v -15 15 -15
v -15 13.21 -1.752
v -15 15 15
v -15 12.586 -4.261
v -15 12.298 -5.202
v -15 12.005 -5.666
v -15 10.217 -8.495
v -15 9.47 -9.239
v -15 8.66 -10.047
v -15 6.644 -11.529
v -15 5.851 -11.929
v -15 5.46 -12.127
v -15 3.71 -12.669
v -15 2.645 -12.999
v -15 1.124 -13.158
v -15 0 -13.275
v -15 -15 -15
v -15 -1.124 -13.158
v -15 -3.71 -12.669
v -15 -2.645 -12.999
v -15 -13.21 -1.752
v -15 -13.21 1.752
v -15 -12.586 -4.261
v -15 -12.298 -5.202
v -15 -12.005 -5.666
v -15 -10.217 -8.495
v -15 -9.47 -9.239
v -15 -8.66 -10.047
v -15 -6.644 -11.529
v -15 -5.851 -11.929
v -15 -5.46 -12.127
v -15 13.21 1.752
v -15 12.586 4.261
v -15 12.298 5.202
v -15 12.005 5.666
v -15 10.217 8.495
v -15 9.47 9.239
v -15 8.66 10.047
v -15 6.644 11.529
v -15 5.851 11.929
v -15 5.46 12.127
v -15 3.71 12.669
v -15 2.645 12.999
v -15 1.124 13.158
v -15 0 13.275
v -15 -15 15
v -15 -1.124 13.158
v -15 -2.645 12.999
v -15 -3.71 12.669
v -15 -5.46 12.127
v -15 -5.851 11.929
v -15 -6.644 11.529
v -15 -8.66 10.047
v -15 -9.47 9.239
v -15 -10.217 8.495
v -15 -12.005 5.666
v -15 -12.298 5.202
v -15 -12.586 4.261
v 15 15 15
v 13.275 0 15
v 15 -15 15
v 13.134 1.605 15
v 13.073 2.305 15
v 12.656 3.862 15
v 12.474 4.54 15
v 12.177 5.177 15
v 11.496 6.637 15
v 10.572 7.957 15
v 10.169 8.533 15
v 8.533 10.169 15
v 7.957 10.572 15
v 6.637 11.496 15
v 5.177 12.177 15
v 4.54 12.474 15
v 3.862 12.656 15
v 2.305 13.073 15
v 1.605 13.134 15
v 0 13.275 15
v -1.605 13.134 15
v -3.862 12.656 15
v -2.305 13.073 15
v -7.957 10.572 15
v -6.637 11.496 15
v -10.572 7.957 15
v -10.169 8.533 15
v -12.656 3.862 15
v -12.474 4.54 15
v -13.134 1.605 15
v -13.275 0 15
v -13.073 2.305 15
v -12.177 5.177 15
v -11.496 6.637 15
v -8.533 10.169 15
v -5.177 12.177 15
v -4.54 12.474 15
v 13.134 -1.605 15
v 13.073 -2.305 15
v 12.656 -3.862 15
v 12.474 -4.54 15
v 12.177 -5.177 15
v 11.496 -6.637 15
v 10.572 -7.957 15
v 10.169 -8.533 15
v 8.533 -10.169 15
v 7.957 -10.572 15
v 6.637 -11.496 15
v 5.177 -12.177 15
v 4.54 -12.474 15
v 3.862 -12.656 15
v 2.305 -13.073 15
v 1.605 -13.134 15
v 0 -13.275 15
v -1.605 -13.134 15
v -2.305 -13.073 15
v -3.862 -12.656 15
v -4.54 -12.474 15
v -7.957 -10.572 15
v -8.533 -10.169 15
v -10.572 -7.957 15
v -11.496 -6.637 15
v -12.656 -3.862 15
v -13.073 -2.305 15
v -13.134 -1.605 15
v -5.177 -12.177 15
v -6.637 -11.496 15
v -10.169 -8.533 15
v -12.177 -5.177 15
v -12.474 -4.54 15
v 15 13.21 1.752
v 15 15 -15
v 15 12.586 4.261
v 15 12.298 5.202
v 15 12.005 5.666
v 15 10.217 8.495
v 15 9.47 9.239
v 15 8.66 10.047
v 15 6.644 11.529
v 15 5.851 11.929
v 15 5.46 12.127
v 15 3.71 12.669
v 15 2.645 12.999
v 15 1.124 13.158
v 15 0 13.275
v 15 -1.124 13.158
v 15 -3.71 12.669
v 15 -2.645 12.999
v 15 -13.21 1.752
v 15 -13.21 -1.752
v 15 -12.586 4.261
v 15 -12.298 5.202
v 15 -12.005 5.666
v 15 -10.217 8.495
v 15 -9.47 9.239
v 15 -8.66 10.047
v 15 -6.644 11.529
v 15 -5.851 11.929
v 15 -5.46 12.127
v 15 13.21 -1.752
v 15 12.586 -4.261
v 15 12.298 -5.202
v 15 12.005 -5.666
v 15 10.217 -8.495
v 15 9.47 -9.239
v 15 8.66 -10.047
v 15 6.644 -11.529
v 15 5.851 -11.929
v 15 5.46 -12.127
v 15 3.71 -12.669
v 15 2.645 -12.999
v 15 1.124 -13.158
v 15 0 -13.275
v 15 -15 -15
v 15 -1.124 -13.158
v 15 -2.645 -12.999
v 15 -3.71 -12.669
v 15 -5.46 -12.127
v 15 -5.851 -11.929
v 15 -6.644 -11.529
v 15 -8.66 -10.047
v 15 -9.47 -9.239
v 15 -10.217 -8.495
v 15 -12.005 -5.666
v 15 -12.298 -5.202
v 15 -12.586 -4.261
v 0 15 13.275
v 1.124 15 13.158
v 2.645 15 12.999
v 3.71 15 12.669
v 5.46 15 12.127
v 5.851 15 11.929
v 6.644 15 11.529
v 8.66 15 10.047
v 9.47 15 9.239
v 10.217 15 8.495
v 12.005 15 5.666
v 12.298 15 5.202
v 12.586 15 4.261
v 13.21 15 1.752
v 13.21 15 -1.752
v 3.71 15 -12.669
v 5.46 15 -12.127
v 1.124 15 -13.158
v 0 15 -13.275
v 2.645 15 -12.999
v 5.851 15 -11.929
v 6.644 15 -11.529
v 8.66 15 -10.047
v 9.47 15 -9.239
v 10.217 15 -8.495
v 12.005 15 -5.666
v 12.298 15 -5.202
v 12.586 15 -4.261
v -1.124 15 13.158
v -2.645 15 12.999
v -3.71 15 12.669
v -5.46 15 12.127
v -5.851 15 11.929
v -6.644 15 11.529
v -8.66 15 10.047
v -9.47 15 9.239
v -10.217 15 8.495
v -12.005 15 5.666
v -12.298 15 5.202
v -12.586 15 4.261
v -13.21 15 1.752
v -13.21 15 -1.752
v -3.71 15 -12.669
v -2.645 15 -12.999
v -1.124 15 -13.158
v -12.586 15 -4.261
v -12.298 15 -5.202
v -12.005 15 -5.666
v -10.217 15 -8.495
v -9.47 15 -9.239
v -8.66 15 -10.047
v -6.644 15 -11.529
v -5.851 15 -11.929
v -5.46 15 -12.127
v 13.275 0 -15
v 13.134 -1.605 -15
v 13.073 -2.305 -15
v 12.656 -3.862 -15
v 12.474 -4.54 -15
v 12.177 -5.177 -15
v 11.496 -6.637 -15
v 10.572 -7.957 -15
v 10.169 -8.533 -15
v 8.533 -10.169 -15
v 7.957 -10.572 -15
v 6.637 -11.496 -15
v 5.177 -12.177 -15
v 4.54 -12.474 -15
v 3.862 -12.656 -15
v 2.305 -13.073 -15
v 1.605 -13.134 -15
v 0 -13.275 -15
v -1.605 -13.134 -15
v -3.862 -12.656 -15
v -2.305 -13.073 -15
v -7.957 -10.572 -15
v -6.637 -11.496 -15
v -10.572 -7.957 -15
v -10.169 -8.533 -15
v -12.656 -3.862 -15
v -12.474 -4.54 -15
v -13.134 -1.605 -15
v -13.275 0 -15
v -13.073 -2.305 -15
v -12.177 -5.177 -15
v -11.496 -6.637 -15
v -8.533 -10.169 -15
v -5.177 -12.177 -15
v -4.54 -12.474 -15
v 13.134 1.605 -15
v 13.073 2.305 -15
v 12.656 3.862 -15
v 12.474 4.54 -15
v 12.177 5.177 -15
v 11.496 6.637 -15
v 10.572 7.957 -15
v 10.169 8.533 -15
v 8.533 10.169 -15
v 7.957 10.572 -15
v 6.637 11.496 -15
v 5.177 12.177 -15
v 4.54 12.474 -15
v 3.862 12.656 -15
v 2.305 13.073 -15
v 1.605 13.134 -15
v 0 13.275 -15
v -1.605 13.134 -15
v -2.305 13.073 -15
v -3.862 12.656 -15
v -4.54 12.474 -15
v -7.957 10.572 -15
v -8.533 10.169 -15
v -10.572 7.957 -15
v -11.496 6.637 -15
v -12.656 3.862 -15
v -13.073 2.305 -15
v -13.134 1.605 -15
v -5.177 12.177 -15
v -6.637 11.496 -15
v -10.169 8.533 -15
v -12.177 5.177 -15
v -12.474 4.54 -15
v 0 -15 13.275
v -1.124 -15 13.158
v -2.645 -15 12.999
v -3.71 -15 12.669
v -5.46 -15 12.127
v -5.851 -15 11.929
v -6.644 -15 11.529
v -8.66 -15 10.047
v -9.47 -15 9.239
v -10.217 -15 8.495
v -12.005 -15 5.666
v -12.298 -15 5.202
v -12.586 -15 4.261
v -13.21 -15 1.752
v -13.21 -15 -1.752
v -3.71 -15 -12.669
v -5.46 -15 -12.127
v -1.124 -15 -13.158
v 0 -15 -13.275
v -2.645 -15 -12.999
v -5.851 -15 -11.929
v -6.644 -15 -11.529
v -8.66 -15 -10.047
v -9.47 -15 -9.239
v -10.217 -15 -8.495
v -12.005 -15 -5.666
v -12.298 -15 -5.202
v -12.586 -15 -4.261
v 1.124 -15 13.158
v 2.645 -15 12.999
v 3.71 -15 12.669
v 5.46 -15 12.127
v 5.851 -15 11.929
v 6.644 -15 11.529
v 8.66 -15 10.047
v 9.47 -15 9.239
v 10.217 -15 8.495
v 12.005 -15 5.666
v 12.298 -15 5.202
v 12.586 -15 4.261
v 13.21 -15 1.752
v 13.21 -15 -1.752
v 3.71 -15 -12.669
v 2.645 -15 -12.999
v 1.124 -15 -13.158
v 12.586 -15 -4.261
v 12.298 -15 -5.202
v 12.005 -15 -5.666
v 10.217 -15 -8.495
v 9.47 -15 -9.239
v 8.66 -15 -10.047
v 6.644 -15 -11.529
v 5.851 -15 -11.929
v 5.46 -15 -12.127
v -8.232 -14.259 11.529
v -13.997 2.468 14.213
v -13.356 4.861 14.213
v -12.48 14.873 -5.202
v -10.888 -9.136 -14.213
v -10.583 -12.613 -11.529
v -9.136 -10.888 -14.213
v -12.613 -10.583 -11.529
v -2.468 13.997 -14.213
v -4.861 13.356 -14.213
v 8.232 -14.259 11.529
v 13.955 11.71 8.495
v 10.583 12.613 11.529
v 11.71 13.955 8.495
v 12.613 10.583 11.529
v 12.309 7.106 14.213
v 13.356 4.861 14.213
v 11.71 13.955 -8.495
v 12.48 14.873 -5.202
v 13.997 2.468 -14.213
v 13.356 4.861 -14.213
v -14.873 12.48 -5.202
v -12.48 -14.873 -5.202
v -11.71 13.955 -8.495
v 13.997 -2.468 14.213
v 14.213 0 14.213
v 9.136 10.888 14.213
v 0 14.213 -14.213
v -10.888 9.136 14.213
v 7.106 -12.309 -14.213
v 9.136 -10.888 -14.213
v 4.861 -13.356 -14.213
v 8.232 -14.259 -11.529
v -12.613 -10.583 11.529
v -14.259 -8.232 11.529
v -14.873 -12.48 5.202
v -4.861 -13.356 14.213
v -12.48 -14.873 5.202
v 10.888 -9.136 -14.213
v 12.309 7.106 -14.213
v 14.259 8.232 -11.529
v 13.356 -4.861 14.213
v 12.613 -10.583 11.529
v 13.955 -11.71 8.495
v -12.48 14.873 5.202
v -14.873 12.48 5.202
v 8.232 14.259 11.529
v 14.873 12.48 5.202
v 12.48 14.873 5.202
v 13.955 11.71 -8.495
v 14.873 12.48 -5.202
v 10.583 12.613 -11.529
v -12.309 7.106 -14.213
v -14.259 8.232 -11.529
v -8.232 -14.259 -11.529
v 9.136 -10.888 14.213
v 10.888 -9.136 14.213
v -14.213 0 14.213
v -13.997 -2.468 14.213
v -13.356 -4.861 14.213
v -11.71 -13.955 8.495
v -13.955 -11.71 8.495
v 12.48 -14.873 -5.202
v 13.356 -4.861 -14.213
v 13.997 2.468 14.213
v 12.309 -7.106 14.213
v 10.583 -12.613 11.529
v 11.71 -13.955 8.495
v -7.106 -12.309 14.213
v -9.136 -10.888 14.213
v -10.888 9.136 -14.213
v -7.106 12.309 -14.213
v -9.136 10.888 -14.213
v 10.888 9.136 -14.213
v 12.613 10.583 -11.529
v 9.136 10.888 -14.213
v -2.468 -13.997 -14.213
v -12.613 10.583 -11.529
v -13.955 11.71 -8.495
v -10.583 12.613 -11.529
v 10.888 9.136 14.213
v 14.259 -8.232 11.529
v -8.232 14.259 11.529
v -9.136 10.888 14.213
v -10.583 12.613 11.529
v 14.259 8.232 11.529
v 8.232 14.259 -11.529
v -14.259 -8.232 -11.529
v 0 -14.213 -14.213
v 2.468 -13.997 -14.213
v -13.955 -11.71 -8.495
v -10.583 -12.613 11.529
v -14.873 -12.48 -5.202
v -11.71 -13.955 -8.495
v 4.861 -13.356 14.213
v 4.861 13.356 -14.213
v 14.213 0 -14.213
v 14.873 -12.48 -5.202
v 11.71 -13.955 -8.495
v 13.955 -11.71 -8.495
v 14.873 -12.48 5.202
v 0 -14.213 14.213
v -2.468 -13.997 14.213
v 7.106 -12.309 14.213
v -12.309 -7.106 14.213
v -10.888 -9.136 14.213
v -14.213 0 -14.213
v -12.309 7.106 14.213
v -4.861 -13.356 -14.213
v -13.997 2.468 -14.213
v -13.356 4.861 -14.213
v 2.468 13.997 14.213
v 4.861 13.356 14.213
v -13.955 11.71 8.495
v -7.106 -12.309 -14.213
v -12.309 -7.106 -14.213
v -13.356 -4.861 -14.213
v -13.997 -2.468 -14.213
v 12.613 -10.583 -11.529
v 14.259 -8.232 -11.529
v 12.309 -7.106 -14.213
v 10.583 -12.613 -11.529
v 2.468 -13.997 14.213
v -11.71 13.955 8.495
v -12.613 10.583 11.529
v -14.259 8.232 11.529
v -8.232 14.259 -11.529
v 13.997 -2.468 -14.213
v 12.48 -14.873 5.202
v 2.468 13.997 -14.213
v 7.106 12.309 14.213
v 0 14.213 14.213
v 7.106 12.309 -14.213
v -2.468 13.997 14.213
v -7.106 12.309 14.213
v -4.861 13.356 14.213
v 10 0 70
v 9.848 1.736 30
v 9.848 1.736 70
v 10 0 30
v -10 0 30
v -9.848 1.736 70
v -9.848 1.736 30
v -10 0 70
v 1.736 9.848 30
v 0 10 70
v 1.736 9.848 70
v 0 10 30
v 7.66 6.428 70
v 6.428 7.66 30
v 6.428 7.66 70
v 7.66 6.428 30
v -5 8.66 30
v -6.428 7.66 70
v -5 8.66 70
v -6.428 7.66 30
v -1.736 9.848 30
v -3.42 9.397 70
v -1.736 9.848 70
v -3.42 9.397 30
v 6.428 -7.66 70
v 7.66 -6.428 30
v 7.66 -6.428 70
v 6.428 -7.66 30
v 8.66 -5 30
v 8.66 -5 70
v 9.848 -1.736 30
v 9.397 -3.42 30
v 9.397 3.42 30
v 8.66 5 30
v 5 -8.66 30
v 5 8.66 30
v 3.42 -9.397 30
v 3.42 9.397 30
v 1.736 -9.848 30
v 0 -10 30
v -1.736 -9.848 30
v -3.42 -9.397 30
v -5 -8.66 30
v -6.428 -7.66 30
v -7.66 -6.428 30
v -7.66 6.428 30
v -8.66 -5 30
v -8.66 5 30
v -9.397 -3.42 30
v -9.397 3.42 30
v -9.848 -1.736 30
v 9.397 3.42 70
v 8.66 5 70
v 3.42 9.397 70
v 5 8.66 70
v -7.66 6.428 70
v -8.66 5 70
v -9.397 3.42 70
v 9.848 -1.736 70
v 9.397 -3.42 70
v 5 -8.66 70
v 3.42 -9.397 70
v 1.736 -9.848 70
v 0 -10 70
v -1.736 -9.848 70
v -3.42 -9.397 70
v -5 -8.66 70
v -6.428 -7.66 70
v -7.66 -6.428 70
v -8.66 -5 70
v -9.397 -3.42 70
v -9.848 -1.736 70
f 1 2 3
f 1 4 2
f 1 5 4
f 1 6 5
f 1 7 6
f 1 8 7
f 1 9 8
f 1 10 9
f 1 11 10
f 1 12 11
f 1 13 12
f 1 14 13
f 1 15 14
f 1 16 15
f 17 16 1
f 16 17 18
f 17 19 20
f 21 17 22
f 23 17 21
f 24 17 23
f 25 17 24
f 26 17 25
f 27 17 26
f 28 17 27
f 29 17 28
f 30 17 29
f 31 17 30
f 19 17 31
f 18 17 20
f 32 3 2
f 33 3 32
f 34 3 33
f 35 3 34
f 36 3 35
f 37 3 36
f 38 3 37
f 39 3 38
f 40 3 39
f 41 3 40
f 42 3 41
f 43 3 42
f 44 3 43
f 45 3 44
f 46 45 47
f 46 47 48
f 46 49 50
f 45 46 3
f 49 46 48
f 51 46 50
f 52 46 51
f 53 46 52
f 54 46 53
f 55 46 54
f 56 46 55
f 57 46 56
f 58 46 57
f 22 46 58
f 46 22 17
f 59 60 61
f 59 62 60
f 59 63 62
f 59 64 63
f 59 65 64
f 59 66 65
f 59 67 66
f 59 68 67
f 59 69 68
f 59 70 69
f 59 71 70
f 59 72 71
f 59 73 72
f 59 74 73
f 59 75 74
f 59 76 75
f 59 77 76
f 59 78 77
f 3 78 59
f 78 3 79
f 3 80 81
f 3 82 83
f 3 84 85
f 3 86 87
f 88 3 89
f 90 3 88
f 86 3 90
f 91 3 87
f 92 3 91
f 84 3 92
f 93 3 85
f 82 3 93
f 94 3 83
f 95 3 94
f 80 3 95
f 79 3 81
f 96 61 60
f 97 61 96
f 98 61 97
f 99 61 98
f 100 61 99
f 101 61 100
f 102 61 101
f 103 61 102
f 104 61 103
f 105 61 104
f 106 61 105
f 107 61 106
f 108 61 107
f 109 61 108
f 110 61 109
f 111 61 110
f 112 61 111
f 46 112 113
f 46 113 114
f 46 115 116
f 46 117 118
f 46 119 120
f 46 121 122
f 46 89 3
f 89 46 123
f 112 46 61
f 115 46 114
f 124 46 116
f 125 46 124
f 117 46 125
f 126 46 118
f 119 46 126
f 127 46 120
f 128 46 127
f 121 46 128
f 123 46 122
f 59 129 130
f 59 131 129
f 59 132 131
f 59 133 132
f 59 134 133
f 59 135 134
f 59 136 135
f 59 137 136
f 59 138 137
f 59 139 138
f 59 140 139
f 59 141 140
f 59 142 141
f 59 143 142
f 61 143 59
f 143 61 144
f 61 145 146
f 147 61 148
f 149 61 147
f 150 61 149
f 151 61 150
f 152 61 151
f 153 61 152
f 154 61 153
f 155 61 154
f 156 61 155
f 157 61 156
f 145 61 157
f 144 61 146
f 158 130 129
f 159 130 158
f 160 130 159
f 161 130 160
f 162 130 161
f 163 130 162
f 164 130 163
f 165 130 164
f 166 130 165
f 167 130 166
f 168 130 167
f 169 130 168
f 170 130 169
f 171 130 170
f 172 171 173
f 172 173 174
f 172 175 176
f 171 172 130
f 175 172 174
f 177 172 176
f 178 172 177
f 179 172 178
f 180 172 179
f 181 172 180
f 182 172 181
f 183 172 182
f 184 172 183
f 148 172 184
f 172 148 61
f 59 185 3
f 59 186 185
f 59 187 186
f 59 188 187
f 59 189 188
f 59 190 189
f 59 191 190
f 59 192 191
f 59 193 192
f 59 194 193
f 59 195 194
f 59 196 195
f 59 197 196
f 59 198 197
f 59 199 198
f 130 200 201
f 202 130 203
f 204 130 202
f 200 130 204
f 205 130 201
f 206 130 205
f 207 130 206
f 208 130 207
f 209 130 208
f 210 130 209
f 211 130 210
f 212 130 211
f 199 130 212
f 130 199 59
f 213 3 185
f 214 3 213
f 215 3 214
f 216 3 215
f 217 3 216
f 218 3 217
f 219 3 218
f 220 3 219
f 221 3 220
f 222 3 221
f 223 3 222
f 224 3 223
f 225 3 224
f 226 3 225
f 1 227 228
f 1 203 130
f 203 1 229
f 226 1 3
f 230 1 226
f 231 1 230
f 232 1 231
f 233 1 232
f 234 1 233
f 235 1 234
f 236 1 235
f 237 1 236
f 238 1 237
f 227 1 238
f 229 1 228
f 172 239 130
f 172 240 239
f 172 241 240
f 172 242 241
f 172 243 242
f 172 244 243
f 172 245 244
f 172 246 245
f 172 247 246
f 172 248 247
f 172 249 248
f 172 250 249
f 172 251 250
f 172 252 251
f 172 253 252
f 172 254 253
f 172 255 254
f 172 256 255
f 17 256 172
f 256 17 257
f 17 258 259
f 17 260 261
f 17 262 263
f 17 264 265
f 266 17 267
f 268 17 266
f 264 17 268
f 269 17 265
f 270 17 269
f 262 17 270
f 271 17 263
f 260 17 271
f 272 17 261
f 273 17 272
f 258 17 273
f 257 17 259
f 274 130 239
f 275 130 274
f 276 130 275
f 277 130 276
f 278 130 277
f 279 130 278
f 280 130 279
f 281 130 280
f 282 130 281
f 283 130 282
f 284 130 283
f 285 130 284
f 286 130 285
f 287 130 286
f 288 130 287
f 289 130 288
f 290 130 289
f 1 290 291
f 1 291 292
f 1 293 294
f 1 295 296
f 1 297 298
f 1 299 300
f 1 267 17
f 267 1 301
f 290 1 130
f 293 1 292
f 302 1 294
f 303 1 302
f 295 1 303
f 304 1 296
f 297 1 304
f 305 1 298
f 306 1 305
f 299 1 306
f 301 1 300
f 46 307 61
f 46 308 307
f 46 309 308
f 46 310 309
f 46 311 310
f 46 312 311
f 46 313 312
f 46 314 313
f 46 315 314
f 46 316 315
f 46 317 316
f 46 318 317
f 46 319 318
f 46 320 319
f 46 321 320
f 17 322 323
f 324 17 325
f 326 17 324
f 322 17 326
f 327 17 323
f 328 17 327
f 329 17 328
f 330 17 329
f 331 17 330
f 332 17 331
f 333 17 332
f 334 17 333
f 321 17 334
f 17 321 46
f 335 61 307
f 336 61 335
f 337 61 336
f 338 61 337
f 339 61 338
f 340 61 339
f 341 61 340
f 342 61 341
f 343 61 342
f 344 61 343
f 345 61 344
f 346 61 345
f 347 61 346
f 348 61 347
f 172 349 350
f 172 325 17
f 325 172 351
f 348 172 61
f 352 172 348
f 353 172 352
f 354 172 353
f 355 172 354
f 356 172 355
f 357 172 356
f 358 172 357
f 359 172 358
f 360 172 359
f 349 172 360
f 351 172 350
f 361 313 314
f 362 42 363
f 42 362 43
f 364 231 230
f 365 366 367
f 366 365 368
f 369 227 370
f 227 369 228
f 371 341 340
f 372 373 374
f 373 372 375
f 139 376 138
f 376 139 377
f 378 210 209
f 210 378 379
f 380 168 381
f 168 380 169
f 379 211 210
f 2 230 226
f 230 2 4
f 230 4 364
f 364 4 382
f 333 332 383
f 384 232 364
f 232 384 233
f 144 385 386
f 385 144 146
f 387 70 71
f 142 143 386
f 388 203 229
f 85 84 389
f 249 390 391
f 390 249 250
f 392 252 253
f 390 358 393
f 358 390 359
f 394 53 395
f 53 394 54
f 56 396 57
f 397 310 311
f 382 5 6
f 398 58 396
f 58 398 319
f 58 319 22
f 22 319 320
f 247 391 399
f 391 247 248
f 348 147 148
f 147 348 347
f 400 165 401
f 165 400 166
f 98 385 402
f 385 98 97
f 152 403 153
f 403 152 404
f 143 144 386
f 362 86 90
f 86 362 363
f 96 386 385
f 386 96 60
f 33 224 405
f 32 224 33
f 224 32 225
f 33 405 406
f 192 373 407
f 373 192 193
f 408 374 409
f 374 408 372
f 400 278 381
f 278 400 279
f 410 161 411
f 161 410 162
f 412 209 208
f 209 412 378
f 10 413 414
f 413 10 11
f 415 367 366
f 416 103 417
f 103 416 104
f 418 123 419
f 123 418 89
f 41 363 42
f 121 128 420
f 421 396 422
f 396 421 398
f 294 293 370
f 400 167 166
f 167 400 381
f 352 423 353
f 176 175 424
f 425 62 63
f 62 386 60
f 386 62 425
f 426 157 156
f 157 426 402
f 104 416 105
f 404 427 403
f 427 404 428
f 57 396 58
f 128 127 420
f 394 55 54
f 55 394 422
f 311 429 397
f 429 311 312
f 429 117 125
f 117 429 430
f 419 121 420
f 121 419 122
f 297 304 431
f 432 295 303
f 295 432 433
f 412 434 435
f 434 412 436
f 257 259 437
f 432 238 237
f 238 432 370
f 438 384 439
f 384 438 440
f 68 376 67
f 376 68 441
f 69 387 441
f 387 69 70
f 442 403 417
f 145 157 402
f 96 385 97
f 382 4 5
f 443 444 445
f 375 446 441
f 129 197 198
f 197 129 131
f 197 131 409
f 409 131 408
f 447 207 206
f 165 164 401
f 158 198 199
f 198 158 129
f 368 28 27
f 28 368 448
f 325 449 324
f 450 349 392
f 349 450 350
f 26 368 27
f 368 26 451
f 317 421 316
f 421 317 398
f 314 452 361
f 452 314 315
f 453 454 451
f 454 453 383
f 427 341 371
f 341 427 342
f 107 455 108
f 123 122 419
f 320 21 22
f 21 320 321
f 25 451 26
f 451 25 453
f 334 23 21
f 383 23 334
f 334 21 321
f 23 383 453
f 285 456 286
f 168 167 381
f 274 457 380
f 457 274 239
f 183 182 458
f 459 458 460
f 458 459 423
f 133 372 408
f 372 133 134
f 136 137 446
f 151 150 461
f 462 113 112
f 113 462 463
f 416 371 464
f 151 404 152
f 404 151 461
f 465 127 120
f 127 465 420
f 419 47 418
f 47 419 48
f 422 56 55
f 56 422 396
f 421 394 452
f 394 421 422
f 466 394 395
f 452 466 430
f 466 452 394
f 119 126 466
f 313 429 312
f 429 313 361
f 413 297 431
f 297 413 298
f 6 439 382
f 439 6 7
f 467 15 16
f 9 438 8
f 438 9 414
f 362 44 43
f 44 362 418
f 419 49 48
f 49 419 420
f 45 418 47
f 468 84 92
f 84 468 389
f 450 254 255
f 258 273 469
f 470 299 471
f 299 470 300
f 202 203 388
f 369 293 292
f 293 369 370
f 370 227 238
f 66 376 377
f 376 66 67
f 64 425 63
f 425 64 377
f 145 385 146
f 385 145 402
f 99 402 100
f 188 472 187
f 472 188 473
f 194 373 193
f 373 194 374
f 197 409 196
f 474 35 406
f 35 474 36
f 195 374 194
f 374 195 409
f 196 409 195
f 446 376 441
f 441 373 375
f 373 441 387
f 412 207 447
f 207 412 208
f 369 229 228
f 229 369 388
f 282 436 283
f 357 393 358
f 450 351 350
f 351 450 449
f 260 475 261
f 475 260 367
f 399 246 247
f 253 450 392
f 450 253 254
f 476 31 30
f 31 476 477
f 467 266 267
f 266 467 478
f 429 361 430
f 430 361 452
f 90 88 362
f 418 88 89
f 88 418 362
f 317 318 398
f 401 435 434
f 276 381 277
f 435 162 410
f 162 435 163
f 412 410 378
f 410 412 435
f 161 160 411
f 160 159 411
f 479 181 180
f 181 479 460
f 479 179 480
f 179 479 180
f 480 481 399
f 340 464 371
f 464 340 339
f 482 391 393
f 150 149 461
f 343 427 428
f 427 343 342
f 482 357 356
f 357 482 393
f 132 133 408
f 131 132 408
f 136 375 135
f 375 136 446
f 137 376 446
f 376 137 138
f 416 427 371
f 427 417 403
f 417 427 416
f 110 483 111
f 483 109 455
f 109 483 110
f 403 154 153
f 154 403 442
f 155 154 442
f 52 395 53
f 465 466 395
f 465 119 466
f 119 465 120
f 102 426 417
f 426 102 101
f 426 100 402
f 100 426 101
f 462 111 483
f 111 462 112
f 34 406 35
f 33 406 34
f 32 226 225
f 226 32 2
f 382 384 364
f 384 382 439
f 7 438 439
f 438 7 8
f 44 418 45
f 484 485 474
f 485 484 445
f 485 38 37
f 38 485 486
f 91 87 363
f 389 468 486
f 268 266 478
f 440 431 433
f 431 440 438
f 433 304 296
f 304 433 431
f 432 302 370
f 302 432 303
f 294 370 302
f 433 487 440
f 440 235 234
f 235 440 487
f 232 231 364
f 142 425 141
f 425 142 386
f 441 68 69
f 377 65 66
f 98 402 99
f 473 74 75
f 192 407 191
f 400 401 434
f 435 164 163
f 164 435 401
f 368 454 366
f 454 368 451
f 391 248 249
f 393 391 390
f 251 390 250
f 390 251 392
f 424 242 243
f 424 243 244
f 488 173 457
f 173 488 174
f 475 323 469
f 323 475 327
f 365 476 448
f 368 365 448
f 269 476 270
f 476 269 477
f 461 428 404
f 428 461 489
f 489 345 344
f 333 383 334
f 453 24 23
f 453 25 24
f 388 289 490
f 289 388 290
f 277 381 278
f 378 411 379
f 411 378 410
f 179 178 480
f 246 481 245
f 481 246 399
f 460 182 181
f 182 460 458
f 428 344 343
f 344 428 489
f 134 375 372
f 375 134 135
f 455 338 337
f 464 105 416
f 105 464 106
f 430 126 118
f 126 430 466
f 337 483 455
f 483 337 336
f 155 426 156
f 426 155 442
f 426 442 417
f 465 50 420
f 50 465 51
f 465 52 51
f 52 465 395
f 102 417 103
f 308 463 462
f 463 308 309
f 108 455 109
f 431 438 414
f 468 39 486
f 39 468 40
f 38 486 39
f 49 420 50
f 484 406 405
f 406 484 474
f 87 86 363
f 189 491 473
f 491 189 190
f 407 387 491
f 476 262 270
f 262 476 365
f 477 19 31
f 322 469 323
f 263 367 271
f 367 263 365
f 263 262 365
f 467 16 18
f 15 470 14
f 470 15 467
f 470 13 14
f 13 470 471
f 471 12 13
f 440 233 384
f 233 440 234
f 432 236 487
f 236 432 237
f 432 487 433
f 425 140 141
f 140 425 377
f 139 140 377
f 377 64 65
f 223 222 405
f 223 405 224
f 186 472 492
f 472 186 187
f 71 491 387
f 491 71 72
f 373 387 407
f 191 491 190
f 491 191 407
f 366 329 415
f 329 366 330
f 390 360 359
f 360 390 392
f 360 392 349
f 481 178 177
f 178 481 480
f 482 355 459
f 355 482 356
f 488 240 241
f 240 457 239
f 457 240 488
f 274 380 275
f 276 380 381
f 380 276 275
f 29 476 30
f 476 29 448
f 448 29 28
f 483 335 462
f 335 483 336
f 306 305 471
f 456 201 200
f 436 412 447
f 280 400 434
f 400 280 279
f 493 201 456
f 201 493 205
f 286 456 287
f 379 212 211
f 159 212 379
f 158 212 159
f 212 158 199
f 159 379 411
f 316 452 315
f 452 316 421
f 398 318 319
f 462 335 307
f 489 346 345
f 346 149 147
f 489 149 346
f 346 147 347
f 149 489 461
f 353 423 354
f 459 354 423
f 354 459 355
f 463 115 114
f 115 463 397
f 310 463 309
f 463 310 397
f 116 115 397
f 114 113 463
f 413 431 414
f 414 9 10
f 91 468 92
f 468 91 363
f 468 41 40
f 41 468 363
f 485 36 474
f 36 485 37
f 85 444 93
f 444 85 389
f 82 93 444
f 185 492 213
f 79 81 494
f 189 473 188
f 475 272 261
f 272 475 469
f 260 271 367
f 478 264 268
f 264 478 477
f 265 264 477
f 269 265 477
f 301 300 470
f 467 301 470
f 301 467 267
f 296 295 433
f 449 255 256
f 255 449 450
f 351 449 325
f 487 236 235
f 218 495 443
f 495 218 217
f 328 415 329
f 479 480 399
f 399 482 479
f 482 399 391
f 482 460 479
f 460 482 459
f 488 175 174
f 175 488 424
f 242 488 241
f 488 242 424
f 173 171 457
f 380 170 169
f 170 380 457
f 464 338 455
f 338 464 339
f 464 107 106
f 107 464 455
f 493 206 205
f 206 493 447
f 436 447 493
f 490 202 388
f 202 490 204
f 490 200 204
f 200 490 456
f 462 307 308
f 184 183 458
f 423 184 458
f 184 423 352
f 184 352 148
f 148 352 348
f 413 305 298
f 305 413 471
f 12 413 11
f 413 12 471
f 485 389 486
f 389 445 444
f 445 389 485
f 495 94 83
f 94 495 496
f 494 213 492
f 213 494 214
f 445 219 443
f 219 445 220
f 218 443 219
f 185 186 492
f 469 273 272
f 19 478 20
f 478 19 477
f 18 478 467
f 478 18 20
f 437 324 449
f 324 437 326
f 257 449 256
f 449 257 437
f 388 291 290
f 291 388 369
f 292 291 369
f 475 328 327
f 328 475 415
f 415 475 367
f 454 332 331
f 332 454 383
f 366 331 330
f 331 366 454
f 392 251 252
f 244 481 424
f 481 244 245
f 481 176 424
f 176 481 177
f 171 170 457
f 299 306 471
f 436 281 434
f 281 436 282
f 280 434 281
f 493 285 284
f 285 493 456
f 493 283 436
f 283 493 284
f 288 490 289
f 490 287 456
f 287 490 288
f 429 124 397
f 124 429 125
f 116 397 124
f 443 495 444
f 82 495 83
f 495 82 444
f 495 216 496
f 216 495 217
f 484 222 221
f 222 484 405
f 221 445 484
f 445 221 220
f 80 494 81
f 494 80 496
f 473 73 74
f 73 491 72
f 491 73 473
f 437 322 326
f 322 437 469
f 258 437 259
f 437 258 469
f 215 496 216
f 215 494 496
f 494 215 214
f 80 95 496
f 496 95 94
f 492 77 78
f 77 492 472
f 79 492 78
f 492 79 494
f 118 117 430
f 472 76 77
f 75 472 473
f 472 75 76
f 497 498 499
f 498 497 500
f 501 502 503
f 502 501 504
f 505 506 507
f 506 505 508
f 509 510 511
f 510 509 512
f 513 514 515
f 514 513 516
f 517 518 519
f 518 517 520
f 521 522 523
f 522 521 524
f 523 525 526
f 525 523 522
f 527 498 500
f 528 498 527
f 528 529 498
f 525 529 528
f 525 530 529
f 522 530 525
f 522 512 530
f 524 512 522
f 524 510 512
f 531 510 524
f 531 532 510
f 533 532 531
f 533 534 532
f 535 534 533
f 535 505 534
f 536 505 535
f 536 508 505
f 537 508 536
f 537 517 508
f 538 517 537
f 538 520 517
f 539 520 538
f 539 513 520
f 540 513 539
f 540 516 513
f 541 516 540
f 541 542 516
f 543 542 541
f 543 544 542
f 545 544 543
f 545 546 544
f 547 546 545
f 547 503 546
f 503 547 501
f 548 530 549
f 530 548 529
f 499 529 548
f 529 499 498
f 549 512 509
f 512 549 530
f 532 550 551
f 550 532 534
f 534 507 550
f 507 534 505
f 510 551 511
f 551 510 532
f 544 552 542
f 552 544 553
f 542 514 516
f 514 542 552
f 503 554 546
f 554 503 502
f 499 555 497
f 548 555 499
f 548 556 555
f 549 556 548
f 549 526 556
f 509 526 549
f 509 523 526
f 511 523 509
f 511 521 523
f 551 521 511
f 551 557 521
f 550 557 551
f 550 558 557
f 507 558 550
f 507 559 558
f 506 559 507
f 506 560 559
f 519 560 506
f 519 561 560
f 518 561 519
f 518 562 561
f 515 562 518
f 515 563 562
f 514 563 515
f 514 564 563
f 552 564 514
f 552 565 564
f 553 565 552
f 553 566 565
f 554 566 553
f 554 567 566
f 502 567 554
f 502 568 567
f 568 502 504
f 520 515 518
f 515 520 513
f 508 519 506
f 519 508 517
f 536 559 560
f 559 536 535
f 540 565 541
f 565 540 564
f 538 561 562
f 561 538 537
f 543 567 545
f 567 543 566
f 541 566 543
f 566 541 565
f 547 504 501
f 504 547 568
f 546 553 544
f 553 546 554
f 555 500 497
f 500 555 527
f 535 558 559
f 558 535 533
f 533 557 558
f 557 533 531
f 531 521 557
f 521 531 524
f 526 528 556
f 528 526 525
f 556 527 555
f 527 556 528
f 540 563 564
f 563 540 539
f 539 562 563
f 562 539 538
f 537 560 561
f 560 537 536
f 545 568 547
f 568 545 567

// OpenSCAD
$fn=36;
union() {
  difference() {
    cube(size=30, center=true);
    sphere(r=20.1);
  }
  translate([0, 0, 30]) {
    cylinder(40, r=10);
  }
}
